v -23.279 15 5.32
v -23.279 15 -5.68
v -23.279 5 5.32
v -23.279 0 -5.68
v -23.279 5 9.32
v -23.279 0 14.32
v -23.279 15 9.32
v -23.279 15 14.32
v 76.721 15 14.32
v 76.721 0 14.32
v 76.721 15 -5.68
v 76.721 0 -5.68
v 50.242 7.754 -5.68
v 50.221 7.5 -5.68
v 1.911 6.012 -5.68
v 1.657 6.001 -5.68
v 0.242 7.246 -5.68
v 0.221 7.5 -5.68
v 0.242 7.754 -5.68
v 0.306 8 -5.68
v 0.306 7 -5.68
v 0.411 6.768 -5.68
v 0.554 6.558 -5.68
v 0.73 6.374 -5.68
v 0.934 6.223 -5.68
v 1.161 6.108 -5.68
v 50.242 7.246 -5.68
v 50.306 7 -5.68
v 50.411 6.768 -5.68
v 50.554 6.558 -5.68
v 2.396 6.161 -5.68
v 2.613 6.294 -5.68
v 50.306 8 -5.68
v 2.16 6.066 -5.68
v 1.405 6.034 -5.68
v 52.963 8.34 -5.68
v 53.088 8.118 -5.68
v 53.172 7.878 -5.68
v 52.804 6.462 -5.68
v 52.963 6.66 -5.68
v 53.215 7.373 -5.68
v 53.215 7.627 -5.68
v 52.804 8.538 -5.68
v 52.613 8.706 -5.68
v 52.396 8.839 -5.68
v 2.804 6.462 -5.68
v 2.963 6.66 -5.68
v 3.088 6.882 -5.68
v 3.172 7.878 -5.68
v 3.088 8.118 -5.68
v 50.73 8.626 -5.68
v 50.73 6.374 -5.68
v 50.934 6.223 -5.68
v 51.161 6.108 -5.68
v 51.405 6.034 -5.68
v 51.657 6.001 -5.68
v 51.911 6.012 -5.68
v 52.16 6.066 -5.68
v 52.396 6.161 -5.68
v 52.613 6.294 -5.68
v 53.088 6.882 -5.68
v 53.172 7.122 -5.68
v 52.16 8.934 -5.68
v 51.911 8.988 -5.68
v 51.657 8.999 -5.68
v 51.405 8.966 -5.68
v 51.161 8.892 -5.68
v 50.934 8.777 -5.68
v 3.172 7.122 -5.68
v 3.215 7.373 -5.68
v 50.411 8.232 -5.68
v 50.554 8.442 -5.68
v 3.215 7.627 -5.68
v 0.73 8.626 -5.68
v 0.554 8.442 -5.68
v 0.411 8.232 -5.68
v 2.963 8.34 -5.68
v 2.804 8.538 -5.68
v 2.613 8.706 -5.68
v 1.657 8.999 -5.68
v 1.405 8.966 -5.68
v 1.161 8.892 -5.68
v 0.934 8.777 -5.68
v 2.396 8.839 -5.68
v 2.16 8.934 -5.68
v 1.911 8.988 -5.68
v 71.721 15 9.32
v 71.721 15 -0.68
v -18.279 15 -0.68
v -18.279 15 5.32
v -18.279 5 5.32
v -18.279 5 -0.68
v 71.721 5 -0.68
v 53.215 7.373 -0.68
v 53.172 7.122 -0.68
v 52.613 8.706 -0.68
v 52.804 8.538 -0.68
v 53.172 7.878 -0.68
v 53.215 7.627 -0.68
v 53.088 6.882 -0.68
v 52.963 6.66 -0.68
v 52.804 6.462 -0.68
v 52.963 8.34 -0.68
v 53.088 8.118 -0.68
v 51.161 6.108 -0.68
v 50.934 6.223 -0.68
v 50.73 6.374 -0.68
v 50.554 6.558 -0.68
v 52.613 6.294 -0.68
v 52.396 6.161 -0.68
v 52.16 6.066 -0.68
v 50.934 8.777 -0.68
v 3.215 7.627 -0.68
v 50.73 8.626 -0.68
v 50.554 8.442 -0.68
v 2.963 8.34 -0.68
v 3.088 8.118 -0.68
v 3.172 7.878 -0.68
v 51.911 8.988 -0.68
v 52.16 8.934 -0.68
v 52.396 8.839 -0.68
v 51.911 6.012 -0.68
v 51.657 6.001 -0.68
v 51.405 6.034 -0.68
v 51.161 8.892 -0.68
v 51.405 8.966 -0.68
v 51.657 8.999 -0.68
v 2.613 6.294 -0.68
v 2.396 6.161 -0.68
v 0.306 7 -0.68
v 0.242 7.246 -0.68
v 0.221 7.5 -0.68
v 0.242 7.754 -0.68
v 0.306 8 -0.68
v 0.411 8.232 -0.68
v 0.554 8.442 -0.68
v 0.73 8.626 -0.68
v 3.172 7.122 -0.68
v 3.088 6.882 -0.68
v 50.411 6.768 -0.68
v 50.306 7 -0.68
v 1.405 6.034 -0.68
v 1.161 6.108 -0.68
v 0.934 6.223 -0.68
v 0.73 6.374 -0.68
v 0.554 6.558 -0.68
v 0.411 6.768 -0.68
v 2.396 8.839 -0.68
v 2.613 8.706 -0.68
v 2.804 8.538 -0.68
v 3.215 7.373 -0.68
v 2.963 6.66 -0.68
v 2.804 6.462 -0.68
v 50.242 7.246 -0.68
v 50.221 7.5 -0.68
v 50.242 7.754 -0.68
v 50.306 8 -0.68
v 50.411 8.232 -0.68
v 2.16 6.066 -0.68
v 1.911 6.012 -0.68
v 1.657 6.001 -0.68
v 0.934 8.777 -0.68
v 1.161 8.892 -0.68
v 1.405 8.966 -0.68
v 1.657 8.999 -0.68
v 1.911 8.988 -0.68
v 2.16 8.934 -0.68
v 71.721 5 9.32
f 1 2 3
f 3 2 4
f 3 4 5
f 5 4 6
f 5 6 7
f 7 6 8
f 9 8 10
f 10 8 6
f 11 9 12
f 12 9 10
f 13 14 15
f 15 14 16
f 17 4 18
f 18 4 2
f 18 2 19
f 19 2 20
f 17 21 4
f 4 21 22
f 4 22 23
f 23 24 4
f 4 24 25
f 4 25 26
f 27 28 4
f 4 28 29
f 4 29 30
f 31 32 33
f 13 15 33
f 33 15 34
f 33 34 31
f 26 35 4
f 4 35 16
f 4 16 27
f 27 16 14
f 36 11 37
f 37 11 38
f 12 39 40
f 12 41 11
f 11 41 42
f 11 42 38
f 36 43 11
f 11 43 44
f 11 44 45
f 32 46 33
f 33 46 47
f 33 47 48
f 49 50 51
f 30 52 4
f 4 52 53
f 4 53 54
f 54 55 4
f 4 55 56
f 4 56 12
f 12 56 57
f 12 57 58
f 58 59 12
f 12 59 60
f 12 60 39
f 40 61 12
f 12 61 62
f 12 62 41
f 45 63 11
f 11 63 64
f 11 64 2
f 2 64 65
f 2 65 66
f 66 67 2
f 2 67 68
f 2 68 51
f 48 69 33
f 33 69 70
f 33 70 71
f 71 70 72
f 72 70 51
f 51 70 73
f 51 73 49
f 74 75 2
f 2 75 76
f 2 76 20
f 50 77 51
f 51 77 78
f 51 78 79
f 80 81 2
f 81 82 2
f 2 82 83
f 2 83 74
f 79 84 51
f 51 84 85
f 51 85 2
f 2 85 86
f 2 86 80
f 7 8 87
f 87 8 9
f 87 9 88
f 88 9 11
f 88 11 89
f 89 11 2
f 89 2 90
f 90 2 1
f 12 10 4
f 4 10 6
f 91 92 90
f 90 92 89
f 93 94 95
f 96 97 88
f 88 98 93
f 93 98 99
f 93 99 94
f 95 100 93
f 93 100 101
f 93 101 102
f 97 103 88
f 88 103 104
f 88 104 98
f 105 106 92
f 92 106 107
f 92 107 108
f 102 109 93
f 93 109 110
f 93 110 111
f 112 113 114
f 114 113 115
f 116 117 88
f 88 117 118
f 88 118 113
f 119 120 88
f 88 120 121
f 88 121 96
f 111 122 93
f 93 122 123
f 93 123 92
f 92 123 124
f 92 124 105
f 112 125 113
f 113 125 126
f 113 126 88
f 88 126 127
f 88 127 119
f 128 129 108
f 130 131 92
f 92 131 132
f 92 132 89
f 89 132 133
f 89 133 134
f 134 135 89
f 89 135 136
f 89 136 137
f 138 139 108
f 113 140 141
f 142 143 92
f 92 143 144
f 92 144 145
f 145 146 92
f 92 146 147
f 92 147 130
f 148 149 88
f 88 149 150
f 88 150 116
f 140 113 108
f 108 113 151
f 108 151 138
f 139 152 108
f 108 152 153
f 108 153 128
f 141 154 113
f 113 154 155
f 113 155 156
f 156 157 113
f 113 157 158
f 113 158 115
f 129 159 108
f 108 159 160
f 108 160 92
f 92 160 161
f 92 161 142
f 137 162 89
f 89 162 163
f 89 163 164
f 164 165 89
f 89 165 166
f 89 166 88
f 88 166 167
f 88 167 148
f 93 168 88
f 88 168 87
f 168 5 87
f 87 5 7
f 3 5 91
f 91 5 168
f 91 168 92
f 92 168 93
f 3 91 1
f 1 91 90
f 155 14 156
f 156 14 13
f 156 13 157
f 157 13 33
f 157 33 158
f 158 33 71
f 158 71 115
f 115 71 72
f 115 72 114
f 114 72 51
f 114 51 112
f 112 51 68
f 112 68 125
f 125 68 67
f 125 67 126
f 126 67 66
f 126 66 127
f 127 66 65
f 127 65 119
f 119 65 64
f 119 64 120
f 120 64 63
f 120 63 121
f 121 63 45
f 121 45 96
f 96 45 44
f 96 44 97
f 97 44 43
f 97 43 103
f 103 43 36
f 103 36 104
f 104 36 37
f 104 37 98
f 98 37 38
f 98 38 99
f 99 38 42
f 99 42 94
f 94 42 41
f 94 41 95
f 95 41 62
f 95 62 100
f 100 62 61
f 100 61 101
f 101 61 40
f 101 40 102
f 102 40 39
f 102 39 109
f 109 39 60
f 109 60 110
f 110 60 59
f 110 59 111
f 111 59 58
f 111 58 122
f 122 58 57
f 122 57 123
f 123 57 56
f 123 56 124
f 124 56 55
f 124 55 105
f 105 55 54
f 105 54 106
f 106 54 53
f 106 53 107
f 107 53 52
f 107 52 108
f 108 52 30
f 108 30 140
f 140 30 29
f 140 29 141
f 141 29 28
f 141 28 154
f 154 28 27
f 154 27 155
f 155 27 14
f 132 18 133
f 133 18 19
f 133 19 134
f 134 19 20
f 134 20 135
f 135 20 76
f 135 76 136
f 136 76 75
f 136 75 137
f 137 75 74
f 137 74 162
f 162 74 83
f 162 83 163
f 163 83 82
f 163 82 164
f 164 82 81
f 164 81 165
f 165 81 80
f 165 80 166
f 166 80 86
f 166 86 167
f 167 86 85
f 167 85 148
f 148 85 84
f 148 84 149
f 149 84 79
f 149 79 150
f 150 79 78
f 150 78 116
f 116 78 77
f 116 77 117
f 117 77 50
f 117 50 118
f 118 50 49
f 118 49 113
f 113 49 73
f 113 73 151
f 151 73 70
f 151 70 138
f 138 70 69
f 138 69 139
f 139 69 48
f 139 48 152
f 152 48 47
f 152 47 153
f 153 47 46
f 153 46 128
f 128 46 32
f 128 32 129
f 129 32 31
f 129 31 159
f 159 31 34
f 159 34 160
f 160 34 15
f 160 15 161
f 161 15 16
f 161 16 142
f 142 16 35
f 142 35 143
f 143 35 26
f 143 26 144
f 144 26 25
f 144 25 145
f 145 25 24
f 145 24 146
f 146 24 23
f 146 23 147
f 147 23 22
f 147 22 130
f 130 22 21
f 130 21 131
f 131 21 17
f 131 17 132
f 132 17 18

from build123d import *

# Parameters (mm, degrees)
SKETCH_2_W          = 100
SKETCH_2_H          = 20
EXTRUDE_1_DEPTH     = 15
SKETCH_3_W          = 90
SKETCH_3_H          = 10
CUT_EXTRUDE_1_DEPTH = 10
SKETCH_5_W          = 5
SKETCH_5_H          = 4
CUT_EXTRUDE_2_DEPTH = 10
CUT_EXTRUDE_3_REACH = 22
SKETCH_6_R          = 1.5


with BuildPart() as part:
    # 草图2 → 凸台-拉伸1 (new body)
    with BuildSketch(Plane(origin=(0, 0, 0), x_dir=(1, 0, 0), z_dir=(0, 1, 0))):
        with Locations((26.720720721, -4.31981982)):
            Rectangle(SKETCH_2_W, SKETCH_2_H)
    extrude(amount=EXTRUDE_1_DEPTH)

    # 草图3 → 切除-拉伸1 (cut)
    with BuildSketch(Plane(origin=(0, 15, 0), x_dir=(1, 0, 0), z_dir=(0, 1, 0))):
        with Locations((26.720720721, -4.31981982)):
            Rectangle(SKETCH_3_W, SKETCH_3_H)
    extrude(amount=-CUT_EXTRUDE_1_DEPTH, mode=Mode.SUBTRACT)

    # 草图5 → 切除-拉伸2 (cut)
    with BuildSketch(Plane(origin=(0, 15, 0), x_dir=(1, 0, 0), z_dir=(0, 1, 0))):
        with Locations((-20.779279279, -7.31981982)):
            Rectangle(SKETCH_5_W, SKETCH_5_H)
    extrude(amount=-CUT_EXTRUDE_2_DEPTH, mode=Mode.SUBTRACT)

    # 草图6 → 切除-拉伸3 (cut, up to next)
    with BuildSketch(Plane(origin=(0, 0, -5.68018018), x_dir=(-1, 0, 0), z_dir=(0, 0, -1)), mode=Mode.PRIVATE) as cut_extrude_3_sk1:
        with Locations((-1.720720721, 7.5)):
            Circle(SKETCH_6_R)
    cut_extrude_3_tool1 = extrude(cut_extrude_3_sk1.sketch, amount=-CUT_EXTRUDE_3_REACH, mode=Mode.PRIVATE) & part.part
    add(cut_extrude_3_tool1.solids().sort_by_distance((1.720721, 7.5, -5.68018))[0], mode=Mode.SUBTRACT)
    # 草图6 → 切除-拉伸3 (cut, up to next)
    with BuildSketch(Plane(origin=(0, 0, -5.68018018), x_dir=(-1, 0, 0), z_dir=(0, 0, -1)), mode=Mode.PRIVATE) as cut_extrude_3_sk2:
        with Locations((-51.720720721, 7.5)):
            Circle(SKETCH_6_R)
    cut_extrude_3_tool2 = extrude(cut_extrude_3_sk2.sketch, amount=-CUT_EXTRUDE_3_REACH, mode=Mode.PRIVATE) & part.part
    add(cut_extrude_3_tool2.solids().sort_by_distance((51.720721, 7.5, -5.68018))[0], mode=Mode.SUBTRACT)


solid = part.part
